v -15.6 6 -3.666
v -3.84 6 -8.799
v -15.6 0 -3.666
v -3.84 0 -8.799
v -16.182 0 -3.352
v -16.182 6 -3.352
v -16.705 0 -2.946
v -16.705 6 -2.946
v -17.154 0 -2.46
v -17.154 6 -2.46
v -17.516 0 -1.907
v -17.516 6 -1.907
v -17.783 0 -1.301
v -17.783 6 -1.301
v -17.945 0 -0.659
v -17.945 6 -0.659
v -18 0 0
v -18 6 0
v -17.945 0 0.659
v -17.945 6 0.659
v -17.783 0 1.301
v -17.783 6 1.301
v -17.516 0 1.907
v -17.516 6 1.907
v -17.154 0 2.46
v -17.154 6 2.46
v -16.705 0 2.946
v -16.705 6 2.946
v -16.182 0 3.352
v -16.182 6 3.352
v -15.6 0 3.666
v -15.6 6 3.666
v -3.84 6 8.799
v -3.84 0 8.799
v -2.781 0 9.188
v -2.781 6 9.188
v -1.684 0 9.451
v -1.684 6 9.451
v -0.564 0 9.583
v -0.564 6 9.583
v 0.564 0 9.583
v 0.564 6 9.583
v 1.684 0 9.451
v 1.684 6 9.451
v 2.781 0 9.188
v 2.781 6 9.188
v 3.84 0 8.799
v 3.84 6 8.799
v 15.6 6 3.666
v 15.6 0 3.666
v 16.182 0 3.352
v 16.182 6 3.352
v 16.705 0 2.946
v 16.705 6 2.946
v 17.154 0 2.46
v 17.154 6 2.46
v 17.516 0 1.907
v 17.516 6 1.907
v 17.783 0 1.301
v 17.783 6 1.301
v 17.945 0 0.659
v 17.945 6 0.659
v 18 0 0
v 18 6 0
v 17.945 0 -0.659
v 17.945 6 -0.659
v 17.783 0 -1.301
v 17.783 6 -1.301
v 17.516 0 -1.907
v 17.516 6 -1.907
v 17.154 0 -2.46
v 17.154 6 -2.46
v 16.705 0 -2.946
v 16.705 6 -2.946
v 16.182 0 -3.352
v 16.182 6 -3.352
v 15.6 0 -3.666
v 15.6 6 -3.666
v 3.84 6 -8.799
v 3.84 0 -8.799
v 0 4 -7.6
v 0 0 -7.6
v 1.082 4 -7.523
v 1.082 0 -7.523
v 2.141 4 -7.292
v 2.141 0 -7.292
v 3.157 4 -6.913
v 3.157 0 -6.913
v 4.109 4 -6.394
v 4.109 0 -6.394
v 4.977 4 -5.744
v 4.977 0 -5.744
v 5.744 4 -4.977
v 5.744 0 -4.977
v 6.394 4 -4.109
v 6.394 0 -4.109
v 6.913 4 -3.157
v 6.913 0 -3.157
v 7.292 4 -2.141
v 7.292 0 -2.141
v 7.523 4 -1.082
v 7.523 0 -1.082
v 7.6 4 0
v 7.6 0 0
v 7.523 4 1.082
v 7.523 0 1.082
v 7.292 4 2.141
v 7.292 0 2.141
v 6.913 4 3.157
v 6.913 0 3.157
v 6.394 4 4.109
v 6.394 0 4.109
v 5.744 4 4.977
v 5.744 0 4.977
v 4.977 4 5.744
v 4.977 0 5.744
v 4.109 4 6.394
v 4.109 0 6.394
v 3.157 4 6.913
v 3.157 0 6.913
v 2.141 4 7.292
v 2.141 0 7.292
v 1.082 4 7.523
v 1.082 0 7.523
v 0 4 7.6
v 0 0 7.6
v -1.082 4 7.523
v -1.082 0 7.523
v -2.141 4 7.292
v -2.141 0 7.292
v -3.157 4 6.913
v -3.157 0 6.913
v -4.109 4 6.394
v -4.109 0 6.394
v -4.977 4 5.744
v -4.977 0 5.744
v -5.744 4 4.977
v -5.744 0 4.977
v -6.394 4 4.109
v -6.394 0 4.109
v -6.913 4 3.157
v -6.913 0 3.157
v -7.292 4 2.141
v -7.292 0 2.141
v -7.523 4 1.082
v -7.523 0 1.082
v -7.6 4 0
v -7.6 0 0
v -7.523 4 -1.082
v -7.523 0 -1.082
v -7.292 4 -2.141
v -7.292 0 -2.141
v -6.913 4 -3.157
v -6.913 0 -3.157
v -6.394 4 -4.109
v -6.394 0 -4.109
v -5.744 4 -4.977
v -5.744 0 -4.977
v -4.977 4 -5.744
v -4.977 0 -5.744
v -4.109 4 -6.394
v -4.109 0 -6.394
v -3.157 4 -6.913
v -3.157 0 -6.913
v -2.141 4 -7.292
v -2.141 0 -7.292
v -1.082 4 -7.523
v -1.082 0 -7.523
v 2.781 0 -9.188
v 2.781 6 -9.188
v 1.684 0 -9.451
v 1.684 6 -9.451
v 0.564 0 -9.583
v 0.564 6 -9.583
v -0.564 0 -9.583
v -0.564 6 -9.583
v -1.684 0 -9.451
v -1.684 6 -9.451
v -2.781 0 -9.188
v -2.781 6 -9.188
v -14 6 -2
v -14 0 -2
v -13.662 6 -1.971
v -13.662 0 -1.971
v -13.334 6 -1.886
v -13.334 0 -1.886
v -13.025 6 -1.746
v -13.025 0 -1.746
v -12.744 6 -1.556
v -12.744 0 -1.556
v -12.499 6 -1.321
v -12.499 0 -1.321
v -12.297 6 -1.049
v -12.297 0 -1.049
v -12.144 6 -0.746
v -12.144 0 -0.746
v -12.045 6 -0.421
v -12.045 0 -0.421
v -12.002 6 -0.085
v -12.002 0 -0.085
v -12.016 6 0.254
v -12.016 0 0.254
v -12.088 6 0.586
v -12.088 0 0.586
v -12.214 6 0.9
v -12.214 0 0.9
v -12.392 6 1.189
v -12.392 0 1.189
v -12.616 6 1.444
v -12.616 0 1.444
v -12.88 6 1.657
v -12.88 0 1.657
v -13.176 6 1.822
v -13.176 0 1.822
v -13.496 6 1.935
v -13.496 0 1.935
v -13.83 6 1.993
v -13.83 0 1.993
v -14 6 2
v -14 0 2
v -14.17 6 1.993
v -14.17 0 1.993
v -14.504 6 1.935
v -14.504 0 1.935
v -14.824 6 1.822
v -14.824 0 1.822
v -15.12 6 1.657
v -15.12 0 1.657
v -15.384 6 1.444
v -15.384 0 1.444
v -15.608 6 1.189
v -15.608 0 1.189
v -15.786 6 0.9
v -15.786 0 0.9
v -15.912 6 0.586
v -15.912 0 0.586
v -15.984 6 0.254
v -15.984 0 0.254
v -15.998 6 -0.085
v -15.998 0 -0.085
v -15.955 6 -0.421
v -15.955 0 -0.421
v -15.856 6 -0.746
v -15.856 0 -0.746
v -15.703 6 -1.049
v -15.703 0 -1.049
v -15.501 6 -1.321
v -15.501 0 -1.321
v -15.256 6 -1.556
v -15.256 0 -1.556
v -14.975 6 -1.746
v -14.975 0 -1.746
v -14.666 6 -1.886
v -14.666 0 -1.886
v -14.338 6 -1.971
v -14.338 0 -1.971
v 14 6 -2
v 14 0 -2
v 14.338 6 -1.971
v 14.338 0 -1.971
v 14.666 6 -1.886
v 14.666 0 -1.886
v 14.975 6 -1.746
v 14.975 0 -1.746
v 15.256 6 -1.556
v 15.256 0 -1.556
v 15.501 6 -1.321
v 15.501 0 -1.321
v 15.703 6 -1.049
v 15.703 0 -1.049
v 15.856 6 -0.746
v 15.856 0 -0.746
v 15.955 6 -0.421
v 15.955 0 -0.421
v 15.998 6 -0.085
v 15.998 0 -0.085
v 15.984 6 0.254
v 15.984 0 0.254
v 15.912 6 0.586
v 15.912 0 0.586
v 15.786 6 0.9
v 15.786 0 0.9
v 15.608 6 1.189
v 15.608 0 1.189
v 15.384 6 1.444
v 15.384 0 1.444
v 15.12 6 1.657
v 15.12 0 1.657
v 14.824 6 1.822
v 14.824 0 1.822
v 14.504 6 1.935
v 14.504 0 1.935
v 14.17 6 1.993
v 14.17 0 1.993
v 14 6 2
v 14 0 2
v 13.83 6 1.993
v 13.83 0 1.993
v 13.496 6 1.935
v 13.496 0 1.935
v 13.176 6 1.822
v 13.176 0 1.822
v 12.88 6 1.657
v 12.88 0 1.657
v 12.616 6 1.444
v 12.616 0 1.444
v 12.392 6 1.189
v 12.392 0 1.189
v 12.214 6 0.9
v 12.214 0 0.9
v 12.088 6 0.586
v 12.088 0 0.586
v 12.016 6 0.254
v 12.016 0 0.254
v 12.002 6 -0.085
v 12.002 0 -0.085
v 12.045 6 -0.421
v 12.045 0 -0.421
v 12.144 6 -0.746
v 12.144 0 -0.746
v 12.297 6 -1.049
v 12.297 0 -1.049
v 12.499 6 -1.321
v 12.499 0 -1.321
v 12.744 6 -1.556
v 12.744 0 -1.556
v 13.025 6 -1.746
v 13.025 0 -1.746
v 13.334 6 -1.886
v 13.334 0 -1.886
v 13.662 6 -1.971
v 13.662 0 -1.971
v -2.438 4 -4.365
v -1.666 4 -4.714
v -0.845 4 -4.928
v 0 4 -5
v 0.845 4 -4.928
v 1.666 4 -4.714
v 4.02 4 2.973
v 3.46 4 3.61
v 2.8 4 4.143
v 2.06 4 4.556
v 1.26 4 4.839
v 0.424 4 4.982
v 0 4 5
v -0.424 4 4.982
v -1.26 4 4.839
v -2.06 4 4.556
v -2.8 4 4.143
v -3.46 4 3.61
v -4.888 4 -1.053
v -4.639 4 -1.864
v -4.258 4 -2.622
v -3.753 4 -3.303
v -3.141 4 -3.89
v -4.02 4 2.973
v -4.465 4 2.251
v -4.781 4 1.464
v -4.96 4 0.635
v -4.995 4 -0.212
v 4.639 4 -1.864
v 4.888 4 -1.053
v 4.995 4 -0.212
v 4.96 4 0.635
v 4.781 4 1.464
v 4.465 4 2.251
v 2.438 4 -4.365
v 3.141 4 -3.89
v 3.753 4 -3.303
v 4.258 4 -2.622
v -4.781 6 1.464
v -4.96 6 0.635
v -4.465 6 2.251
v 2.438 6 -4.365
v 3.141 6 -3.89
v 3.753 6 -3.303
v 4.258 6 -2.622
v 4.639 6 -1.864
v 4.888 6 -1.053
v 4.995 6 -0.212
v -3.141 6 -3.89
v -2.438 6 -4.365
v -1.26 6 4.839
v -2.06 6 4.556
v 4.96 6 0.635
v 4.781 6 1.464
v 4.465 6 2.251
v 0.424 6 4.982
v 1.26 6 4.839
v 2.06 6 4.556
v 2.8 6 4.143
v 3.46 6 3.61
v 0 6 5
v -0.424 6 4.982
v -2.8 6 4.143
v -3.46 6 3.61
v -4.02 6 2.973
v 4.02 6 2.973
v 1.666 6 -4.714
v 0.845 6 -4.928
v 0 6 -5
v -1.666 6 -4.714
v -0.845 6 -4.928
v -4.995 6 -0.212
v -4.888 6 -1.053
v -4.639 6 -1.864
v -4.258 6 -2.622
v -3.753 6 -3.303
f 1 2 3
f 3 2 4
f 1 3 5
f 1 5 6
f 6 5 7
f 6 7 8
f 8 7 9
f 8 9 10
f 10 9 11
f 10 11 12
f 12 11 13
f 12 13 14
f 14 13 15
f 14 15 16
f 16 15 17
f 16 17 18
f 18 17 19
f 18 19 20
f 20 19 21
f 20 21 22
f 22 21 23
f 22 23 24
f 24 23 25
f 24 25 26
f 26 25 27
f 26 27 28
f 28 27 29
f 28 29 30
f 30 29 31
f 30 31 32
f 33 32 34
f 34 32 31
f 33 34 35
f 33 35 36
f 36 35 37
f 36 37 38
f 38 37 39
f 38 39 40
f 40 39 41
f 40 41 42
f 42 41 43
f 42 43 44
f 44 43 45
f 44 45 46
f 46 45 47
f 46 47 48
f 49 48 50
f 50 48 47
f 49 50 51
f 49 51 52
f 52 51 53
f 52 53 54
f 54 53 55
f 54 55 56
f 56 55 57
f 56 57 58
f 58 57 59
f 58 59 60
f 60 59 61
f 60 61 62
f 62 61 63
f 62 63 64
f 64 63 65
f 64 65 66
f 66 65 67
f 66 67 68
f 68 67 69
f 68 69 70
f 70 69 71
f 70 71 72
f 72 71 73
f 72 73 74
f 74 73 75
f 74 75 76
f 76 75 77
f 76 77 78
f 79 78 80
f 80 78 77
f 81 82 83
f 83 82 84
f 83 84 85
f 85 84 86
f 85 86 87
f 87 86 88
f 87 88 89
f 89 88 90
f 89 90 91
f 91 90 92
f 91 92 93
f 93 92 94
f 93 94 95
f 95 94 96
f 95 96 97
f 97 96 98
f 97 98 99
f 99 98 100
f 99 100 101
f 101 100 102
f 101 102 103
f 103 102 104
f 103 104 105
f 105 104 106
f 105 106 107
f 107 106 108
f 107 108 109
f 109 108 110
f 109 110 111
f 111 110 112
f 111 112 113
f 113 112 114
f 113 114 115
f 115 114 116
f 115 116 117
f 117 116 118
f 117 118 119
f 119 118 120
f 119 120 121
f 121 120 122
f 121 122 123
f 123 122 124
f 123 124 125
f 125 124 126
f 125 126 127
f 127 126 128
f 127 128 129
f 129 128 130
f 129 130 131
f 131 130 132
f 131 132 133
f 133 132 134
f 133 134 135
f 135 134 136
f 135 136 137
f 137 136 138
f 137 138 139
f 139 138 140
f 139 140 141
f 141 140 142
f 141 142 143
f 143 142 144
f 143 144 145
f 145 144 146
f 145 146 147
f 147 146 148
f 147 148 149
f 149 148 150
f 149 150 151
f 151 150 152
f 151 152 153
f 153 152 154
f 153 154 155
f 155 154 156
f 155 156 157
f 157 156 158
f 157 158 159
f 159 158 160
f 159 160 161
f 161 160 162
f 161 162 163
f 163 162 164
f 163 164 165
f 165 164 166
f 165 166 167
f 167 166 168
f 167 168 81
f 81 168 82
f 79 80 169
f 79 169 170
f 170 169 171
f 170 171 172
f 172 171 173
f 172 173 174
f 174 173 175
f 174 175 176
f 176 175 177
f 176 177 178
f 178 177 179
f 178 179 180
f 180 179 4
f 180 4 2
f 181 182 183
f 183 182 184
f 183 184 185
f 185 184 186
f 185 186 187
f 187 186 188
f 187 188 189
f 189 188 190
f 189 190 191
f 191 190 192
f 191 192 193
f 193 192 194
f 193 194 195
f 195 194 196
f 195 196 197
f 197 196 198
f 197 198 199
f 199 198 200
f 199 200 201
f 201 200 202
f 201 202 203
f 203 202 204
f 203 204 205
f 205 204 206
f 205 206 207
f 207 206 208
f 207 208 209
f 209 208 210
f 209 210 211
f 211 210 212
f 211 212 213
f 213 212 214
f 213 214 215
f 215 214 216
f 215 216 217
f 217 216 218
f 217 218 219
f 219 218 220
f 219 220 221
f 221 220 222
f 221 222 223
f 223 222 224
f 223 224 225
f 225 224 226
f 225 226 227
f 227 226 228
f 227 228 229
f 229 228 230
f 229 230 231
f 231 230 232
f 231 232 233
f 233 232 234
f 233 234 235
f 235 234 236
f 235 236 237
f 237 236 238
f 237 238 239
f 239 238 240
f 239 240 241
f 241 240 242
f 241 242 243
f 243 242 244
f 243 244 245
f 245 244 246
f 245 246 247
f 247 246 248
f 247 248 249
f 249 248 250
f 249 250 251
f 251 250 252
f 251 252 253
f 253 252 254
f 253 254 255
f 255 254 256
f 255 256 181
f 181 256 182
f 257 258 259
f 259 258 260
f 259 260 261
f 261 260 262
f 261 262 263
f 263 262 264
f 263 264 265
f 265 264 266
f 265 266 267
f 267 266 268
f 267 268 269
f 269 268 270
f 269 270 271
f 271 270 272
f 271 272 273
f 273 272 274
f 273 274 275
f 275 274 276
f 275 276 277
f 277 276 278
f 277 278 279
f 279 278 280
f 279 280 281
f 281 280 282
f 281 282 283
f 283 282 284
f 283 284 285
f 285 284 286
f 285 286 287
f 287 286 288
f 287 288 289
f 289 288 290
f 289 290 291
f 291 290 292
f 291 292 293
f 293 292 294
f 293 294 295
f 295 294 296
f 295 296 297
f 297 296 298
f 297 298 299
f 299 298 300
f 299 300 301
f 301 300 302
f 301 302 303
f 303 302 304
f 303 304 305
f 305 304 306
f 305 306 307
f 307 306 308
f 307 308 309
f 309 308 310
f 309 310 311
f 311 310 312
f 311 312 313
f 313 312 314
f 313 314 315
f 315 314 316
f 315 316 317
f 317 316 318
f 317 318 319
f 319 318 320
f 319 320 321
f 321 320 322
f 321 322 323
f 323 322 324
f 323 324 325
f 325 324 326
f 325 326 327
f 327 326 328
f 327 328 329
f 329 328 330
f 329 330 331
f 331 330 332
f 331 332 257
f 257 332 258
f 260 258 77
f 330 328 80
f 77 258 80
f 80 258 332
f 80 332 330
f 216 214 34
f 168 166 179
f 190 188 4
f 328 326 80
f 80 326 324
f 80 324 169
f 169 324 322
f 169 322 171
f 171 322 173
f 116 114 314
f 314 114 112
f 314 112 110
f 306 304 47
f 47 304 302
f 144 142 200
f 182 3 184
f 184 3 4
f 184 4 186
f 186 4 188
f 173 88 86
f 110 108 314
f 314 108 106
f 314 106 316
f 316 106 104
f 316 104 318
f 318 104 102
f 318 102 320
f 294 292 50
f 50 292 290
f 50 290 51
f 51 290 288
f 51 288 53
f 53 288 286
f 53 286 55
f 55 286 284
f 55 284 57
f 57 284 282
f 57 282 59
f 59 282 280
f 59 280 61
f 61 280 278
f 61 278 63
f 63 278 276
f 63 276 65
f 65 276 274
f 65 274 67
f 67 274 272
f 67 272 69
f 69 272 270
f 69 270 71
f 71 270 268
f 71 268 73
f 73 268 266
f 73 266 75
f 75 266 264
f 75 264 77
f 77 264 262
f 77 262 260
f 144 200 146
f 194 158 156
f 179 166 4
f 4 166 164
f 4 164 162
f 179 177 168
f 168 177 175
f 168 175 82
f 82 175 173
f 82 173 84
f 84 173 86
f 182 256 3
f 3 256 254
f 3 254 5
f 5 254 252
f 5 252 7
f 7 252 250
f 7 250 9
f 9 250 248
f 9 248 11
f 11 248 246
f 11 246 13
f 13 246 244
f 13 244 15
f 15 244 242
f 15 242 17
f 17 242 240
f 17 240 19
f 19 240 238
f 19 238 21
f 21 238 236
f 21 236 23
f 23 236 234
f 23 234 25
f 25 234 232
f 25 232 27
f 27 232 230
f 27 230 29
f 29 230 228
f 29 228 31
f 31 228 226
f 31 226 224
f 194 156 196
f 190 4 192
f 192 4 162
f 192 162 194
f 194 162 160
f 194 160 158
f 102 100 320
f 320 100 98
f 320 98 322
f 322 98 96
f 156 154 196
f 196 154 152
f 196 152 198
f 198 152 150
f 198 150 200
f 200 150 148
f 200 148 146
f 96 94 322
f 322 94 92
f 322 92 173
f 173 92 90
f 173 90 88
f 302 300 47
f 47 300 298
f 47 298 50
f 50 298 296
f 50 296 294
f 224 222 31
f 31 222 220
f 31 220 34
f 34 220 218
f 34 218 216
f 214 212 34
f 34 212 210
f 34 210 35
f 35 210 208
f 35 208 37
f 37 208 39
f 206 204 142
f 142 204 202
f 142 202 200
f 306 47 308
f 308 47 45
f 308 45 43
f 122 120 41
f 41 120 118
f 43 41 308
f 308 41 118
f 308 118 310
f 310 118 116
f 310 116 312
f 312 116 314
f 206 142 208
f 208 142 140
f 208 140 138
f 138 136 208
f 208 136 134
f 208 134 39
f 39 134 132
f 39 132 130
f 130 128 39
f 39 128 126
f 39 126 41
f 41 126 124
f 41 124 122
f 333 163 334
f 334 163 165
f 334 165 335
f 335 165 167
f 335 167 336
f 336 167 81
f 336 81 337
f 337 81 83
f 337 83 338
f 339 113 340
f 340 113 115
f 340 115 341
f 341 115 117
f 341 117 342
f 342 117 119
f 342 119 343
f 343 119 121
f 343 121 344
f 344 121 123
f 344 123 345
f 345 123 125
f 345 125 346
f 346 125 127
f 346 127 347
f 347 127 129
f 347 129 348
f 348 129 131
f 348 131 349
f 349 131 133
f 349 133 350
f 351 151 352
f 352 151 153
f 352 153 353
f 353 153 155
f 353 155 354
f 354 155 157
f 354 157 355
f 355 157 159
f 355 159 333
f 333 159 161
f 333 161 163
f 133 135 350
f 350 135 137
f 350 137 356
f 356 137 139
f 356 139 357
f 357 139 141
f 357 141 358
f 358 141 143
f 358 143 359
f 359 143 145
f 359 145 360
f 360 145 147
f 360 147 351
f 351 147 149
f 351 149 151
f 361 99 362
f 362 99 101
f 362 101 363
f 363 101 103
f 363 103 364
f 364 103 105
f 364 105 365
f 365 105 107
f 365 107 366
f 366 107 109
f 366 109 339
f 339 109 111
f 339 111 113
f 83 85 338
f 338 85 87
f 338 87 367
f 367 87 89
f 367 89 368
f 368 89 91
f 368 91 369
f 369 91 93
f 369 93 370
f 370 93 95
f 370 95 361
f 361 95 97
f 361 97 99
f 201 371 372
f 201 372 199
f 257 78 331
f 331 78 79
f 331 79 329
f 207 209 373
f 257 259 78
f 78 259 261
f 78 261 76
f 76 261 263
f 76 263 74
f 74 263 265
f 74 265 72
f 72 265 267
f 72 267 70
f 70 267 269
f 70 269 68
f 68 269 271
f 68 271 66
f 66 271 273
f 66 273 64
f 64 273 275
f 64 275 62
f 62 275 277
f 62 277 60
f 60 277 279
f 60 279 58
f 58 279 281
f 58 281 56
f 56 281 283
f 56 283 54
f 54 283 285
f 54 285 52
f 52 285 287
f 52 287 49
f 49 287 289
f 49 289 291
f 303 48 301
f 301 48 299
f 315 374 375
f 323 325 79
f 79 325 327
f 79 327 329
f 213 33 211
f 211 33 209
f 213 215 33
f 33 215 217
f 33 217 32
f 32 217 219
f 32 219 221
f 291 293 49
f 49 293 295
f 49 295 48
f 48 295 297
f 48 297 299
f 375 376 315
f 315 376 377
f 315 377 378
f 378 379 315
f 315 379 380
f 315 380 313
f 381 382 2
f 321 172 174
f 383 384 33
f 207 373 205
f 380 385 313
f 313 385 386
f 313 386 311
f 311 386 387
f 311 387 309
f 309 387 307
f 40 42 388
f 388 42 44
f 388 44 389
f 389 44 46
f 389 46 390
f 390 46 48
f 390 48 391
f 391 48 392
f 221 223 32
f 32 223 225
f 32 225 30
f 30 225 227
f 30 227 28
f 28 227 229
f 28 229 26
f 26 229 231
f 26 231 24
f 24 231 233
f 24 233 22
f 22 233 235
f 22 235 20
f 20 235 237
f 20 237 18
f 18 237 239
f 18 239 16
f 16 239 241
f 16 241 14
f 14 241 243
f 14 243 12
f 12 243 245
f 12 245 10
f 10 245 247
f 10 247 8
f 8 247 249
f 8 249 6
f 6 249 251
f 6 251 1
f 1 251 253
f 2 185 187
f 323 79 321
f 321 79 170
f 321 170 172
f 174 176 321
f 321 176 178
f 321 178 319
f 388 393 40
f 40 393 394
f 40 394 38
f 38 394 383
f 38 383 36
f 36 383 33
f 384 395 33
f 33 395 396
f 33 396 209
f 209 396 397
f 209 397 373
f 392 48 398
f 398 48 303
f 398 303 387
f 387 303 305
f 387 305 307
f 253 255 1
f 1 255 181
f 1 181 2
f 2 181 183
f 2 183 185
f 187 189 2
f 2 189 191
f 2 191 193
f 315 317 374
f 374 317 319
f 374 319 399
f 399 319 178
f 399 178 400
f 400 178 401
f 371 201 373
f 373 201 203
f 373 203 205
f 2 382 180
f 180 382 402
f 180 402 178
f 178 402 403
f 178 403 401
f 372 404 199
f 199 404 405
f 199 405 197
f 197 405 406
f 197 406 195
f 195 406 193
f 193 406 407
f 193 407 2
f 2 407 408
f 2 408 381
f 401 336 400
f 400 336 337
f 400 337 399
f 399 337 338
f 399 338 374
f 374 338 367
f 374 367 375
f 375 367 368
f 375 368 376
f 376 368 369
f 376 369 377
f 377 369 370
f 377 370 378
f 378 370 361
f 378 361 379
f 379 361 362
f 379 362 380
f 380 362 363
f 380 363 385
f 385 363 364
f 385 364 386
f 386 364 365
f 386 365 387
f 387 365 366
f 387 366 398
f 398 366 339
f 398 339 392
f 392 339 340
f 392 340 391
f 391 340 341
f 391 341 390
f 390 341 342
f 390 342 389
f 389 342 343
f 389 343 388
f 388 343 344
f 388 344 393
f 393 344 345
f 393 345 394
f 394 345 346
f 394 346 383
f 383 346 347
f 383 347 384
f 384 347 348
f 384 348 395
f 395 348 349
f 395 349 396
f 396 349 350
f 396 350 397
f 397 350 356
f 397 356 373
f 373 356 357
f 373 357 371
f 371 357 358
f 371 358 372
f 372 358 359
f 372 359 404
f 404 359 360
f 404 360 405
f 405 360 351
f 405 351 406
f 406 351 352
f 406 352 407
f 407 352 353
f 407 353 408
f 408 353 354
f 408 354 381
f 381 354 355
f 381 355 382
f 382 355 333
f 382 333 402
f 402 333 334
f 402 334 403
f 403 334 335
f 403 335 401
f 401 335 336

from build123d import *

# Parameters (mm, degrees)
SKETCH1_R           = 2
SKETCH1_R_2         = 9.6
SKETCH1_R_3         = 7.6
BOSS_EXTRUDE1_DEPTH = 4
SKETCH2_R           = 5
SKETCH2_R_2         = 2
BOSS_EXTRUDE2_DEPTH = 2


with BuildPart() as part:
    # Sketch1 → Boss-Extrude1 (new body)
    # profile 1 of 3: a face of its own
    with BuildSketch(Plane(origin=(0, 0, 0), x_dir=(1, 0, 0), z_dir=(0, 1, 0))):
        with BuildLine():
            ThreePointArc((-3.84, -8.798545334), (-9.6, 0), (-3.84, 8.798545334))
            Line((-3.84, 8.798545334), (-15.6, 3.666060556))
            ThreePointArc((-15.6, 3.666060556), (-18, 0), (-15.6, -3.666060556))
            Line((-15.6, -3.666060556), (-3.84, -8.798545334))
        make_face()
        with Locations(Location((-14, 0, 0), (0, 0, 270))):
            Circle(SKETCH1_R, mode=Mode.SUBTRACT)
    # profile 2 of 3: a face of its own
    with BuildSketch(Plane(origin=(0, 0, 0), x_dir=(1, 0, 0), z_dir=(0, 1, 0))):
        Circle(SKETCH1_R_2)
        with Locations(Location((0, 0, 0), (0, 0, 270))):
            Circle(SKETCH1_R_3, mode=Mode.SUBTRACT)
    # profile 3 of 3: a face of its own
    with BuildSketch(Plane(origin=(0, 0, 0), x_dir=(1, 0, 0), z_dir=(0, 1, 0))):
        with BuildLine():
            Line((15.6, 3.666060556), (3.84, 8.798545334))
            ThreePointArc((3.84, 8.798545334), (8.031936255, 5.258136552), (9.6, 0))
            ThreePointArc((9.6, 0), (8.031936255, -5.258136552), (3.84, -8.798545334))
            Line((3.84, -8.798545334), (15.6, -3.666060556))
            ThreePointArc((15.6, -3.666060556), (18, 0), (15.6, 3.666060556))
        make_face()
        with Locations(Location((14, 0, 0), (0, 0, 270))):
            Circle(SKETCH1_R, mode=Mode.SUBTRACT)
    extrude(amount=BOSS_EXTRUDE1_DEPTH)

    # Sketch2 → Boss-Extrude2 (add)
    with BuildSketch(Plane(origin=(0, 4, 0), x_dir=(1, 0, 0), z_dir=(0, 1, 0))):
        with BuildLine():
            Line((-3.84, 8.798545334), (-15.6, 3.666060556))
            ThreePointArc((-15.6, 3.666060556), (-18, 0), (-15.6, -3.666060556))
            Line((-15.6, -3.666060556), (-3.84, -8.798545334))
            ThreePointArc((-3.84, -8.798545334), (0, -9.6), (3.84, -8.798545334))
            Line((3.84, -8.798545334), (15.6, -3.666060556))
            ThreePointArc((15.6, -3.666060556), (18, 0), (15.6, 3.666060556))
            Line((15.6, 3.666060556), (3.84, 8.798545334))
            ThreePointArc((3.84, 8.798545334), (0, 9.6), (-3.84, 8.798545334))
        make_face()
        with Locations(Location((0, 0, 0), (0, 0, 270))):
            Circle(SKETCH2_R, mode=Mode.SUBTRACT)
        with Locations(Location((-14, 0, 0), (0, 0, 270))):
            Circle(SKETCH2_R_2, mode=Mode.SUBTRACT)
        with Locations(Location((14, 0, 0), (0, 0, 270))):
            Circle(SKETCH2_R_2, mode=Mode.SUBTRACT)
    extrude(amount=BOSS_EXTRUDE2_DEPTH)


solid = part.part
